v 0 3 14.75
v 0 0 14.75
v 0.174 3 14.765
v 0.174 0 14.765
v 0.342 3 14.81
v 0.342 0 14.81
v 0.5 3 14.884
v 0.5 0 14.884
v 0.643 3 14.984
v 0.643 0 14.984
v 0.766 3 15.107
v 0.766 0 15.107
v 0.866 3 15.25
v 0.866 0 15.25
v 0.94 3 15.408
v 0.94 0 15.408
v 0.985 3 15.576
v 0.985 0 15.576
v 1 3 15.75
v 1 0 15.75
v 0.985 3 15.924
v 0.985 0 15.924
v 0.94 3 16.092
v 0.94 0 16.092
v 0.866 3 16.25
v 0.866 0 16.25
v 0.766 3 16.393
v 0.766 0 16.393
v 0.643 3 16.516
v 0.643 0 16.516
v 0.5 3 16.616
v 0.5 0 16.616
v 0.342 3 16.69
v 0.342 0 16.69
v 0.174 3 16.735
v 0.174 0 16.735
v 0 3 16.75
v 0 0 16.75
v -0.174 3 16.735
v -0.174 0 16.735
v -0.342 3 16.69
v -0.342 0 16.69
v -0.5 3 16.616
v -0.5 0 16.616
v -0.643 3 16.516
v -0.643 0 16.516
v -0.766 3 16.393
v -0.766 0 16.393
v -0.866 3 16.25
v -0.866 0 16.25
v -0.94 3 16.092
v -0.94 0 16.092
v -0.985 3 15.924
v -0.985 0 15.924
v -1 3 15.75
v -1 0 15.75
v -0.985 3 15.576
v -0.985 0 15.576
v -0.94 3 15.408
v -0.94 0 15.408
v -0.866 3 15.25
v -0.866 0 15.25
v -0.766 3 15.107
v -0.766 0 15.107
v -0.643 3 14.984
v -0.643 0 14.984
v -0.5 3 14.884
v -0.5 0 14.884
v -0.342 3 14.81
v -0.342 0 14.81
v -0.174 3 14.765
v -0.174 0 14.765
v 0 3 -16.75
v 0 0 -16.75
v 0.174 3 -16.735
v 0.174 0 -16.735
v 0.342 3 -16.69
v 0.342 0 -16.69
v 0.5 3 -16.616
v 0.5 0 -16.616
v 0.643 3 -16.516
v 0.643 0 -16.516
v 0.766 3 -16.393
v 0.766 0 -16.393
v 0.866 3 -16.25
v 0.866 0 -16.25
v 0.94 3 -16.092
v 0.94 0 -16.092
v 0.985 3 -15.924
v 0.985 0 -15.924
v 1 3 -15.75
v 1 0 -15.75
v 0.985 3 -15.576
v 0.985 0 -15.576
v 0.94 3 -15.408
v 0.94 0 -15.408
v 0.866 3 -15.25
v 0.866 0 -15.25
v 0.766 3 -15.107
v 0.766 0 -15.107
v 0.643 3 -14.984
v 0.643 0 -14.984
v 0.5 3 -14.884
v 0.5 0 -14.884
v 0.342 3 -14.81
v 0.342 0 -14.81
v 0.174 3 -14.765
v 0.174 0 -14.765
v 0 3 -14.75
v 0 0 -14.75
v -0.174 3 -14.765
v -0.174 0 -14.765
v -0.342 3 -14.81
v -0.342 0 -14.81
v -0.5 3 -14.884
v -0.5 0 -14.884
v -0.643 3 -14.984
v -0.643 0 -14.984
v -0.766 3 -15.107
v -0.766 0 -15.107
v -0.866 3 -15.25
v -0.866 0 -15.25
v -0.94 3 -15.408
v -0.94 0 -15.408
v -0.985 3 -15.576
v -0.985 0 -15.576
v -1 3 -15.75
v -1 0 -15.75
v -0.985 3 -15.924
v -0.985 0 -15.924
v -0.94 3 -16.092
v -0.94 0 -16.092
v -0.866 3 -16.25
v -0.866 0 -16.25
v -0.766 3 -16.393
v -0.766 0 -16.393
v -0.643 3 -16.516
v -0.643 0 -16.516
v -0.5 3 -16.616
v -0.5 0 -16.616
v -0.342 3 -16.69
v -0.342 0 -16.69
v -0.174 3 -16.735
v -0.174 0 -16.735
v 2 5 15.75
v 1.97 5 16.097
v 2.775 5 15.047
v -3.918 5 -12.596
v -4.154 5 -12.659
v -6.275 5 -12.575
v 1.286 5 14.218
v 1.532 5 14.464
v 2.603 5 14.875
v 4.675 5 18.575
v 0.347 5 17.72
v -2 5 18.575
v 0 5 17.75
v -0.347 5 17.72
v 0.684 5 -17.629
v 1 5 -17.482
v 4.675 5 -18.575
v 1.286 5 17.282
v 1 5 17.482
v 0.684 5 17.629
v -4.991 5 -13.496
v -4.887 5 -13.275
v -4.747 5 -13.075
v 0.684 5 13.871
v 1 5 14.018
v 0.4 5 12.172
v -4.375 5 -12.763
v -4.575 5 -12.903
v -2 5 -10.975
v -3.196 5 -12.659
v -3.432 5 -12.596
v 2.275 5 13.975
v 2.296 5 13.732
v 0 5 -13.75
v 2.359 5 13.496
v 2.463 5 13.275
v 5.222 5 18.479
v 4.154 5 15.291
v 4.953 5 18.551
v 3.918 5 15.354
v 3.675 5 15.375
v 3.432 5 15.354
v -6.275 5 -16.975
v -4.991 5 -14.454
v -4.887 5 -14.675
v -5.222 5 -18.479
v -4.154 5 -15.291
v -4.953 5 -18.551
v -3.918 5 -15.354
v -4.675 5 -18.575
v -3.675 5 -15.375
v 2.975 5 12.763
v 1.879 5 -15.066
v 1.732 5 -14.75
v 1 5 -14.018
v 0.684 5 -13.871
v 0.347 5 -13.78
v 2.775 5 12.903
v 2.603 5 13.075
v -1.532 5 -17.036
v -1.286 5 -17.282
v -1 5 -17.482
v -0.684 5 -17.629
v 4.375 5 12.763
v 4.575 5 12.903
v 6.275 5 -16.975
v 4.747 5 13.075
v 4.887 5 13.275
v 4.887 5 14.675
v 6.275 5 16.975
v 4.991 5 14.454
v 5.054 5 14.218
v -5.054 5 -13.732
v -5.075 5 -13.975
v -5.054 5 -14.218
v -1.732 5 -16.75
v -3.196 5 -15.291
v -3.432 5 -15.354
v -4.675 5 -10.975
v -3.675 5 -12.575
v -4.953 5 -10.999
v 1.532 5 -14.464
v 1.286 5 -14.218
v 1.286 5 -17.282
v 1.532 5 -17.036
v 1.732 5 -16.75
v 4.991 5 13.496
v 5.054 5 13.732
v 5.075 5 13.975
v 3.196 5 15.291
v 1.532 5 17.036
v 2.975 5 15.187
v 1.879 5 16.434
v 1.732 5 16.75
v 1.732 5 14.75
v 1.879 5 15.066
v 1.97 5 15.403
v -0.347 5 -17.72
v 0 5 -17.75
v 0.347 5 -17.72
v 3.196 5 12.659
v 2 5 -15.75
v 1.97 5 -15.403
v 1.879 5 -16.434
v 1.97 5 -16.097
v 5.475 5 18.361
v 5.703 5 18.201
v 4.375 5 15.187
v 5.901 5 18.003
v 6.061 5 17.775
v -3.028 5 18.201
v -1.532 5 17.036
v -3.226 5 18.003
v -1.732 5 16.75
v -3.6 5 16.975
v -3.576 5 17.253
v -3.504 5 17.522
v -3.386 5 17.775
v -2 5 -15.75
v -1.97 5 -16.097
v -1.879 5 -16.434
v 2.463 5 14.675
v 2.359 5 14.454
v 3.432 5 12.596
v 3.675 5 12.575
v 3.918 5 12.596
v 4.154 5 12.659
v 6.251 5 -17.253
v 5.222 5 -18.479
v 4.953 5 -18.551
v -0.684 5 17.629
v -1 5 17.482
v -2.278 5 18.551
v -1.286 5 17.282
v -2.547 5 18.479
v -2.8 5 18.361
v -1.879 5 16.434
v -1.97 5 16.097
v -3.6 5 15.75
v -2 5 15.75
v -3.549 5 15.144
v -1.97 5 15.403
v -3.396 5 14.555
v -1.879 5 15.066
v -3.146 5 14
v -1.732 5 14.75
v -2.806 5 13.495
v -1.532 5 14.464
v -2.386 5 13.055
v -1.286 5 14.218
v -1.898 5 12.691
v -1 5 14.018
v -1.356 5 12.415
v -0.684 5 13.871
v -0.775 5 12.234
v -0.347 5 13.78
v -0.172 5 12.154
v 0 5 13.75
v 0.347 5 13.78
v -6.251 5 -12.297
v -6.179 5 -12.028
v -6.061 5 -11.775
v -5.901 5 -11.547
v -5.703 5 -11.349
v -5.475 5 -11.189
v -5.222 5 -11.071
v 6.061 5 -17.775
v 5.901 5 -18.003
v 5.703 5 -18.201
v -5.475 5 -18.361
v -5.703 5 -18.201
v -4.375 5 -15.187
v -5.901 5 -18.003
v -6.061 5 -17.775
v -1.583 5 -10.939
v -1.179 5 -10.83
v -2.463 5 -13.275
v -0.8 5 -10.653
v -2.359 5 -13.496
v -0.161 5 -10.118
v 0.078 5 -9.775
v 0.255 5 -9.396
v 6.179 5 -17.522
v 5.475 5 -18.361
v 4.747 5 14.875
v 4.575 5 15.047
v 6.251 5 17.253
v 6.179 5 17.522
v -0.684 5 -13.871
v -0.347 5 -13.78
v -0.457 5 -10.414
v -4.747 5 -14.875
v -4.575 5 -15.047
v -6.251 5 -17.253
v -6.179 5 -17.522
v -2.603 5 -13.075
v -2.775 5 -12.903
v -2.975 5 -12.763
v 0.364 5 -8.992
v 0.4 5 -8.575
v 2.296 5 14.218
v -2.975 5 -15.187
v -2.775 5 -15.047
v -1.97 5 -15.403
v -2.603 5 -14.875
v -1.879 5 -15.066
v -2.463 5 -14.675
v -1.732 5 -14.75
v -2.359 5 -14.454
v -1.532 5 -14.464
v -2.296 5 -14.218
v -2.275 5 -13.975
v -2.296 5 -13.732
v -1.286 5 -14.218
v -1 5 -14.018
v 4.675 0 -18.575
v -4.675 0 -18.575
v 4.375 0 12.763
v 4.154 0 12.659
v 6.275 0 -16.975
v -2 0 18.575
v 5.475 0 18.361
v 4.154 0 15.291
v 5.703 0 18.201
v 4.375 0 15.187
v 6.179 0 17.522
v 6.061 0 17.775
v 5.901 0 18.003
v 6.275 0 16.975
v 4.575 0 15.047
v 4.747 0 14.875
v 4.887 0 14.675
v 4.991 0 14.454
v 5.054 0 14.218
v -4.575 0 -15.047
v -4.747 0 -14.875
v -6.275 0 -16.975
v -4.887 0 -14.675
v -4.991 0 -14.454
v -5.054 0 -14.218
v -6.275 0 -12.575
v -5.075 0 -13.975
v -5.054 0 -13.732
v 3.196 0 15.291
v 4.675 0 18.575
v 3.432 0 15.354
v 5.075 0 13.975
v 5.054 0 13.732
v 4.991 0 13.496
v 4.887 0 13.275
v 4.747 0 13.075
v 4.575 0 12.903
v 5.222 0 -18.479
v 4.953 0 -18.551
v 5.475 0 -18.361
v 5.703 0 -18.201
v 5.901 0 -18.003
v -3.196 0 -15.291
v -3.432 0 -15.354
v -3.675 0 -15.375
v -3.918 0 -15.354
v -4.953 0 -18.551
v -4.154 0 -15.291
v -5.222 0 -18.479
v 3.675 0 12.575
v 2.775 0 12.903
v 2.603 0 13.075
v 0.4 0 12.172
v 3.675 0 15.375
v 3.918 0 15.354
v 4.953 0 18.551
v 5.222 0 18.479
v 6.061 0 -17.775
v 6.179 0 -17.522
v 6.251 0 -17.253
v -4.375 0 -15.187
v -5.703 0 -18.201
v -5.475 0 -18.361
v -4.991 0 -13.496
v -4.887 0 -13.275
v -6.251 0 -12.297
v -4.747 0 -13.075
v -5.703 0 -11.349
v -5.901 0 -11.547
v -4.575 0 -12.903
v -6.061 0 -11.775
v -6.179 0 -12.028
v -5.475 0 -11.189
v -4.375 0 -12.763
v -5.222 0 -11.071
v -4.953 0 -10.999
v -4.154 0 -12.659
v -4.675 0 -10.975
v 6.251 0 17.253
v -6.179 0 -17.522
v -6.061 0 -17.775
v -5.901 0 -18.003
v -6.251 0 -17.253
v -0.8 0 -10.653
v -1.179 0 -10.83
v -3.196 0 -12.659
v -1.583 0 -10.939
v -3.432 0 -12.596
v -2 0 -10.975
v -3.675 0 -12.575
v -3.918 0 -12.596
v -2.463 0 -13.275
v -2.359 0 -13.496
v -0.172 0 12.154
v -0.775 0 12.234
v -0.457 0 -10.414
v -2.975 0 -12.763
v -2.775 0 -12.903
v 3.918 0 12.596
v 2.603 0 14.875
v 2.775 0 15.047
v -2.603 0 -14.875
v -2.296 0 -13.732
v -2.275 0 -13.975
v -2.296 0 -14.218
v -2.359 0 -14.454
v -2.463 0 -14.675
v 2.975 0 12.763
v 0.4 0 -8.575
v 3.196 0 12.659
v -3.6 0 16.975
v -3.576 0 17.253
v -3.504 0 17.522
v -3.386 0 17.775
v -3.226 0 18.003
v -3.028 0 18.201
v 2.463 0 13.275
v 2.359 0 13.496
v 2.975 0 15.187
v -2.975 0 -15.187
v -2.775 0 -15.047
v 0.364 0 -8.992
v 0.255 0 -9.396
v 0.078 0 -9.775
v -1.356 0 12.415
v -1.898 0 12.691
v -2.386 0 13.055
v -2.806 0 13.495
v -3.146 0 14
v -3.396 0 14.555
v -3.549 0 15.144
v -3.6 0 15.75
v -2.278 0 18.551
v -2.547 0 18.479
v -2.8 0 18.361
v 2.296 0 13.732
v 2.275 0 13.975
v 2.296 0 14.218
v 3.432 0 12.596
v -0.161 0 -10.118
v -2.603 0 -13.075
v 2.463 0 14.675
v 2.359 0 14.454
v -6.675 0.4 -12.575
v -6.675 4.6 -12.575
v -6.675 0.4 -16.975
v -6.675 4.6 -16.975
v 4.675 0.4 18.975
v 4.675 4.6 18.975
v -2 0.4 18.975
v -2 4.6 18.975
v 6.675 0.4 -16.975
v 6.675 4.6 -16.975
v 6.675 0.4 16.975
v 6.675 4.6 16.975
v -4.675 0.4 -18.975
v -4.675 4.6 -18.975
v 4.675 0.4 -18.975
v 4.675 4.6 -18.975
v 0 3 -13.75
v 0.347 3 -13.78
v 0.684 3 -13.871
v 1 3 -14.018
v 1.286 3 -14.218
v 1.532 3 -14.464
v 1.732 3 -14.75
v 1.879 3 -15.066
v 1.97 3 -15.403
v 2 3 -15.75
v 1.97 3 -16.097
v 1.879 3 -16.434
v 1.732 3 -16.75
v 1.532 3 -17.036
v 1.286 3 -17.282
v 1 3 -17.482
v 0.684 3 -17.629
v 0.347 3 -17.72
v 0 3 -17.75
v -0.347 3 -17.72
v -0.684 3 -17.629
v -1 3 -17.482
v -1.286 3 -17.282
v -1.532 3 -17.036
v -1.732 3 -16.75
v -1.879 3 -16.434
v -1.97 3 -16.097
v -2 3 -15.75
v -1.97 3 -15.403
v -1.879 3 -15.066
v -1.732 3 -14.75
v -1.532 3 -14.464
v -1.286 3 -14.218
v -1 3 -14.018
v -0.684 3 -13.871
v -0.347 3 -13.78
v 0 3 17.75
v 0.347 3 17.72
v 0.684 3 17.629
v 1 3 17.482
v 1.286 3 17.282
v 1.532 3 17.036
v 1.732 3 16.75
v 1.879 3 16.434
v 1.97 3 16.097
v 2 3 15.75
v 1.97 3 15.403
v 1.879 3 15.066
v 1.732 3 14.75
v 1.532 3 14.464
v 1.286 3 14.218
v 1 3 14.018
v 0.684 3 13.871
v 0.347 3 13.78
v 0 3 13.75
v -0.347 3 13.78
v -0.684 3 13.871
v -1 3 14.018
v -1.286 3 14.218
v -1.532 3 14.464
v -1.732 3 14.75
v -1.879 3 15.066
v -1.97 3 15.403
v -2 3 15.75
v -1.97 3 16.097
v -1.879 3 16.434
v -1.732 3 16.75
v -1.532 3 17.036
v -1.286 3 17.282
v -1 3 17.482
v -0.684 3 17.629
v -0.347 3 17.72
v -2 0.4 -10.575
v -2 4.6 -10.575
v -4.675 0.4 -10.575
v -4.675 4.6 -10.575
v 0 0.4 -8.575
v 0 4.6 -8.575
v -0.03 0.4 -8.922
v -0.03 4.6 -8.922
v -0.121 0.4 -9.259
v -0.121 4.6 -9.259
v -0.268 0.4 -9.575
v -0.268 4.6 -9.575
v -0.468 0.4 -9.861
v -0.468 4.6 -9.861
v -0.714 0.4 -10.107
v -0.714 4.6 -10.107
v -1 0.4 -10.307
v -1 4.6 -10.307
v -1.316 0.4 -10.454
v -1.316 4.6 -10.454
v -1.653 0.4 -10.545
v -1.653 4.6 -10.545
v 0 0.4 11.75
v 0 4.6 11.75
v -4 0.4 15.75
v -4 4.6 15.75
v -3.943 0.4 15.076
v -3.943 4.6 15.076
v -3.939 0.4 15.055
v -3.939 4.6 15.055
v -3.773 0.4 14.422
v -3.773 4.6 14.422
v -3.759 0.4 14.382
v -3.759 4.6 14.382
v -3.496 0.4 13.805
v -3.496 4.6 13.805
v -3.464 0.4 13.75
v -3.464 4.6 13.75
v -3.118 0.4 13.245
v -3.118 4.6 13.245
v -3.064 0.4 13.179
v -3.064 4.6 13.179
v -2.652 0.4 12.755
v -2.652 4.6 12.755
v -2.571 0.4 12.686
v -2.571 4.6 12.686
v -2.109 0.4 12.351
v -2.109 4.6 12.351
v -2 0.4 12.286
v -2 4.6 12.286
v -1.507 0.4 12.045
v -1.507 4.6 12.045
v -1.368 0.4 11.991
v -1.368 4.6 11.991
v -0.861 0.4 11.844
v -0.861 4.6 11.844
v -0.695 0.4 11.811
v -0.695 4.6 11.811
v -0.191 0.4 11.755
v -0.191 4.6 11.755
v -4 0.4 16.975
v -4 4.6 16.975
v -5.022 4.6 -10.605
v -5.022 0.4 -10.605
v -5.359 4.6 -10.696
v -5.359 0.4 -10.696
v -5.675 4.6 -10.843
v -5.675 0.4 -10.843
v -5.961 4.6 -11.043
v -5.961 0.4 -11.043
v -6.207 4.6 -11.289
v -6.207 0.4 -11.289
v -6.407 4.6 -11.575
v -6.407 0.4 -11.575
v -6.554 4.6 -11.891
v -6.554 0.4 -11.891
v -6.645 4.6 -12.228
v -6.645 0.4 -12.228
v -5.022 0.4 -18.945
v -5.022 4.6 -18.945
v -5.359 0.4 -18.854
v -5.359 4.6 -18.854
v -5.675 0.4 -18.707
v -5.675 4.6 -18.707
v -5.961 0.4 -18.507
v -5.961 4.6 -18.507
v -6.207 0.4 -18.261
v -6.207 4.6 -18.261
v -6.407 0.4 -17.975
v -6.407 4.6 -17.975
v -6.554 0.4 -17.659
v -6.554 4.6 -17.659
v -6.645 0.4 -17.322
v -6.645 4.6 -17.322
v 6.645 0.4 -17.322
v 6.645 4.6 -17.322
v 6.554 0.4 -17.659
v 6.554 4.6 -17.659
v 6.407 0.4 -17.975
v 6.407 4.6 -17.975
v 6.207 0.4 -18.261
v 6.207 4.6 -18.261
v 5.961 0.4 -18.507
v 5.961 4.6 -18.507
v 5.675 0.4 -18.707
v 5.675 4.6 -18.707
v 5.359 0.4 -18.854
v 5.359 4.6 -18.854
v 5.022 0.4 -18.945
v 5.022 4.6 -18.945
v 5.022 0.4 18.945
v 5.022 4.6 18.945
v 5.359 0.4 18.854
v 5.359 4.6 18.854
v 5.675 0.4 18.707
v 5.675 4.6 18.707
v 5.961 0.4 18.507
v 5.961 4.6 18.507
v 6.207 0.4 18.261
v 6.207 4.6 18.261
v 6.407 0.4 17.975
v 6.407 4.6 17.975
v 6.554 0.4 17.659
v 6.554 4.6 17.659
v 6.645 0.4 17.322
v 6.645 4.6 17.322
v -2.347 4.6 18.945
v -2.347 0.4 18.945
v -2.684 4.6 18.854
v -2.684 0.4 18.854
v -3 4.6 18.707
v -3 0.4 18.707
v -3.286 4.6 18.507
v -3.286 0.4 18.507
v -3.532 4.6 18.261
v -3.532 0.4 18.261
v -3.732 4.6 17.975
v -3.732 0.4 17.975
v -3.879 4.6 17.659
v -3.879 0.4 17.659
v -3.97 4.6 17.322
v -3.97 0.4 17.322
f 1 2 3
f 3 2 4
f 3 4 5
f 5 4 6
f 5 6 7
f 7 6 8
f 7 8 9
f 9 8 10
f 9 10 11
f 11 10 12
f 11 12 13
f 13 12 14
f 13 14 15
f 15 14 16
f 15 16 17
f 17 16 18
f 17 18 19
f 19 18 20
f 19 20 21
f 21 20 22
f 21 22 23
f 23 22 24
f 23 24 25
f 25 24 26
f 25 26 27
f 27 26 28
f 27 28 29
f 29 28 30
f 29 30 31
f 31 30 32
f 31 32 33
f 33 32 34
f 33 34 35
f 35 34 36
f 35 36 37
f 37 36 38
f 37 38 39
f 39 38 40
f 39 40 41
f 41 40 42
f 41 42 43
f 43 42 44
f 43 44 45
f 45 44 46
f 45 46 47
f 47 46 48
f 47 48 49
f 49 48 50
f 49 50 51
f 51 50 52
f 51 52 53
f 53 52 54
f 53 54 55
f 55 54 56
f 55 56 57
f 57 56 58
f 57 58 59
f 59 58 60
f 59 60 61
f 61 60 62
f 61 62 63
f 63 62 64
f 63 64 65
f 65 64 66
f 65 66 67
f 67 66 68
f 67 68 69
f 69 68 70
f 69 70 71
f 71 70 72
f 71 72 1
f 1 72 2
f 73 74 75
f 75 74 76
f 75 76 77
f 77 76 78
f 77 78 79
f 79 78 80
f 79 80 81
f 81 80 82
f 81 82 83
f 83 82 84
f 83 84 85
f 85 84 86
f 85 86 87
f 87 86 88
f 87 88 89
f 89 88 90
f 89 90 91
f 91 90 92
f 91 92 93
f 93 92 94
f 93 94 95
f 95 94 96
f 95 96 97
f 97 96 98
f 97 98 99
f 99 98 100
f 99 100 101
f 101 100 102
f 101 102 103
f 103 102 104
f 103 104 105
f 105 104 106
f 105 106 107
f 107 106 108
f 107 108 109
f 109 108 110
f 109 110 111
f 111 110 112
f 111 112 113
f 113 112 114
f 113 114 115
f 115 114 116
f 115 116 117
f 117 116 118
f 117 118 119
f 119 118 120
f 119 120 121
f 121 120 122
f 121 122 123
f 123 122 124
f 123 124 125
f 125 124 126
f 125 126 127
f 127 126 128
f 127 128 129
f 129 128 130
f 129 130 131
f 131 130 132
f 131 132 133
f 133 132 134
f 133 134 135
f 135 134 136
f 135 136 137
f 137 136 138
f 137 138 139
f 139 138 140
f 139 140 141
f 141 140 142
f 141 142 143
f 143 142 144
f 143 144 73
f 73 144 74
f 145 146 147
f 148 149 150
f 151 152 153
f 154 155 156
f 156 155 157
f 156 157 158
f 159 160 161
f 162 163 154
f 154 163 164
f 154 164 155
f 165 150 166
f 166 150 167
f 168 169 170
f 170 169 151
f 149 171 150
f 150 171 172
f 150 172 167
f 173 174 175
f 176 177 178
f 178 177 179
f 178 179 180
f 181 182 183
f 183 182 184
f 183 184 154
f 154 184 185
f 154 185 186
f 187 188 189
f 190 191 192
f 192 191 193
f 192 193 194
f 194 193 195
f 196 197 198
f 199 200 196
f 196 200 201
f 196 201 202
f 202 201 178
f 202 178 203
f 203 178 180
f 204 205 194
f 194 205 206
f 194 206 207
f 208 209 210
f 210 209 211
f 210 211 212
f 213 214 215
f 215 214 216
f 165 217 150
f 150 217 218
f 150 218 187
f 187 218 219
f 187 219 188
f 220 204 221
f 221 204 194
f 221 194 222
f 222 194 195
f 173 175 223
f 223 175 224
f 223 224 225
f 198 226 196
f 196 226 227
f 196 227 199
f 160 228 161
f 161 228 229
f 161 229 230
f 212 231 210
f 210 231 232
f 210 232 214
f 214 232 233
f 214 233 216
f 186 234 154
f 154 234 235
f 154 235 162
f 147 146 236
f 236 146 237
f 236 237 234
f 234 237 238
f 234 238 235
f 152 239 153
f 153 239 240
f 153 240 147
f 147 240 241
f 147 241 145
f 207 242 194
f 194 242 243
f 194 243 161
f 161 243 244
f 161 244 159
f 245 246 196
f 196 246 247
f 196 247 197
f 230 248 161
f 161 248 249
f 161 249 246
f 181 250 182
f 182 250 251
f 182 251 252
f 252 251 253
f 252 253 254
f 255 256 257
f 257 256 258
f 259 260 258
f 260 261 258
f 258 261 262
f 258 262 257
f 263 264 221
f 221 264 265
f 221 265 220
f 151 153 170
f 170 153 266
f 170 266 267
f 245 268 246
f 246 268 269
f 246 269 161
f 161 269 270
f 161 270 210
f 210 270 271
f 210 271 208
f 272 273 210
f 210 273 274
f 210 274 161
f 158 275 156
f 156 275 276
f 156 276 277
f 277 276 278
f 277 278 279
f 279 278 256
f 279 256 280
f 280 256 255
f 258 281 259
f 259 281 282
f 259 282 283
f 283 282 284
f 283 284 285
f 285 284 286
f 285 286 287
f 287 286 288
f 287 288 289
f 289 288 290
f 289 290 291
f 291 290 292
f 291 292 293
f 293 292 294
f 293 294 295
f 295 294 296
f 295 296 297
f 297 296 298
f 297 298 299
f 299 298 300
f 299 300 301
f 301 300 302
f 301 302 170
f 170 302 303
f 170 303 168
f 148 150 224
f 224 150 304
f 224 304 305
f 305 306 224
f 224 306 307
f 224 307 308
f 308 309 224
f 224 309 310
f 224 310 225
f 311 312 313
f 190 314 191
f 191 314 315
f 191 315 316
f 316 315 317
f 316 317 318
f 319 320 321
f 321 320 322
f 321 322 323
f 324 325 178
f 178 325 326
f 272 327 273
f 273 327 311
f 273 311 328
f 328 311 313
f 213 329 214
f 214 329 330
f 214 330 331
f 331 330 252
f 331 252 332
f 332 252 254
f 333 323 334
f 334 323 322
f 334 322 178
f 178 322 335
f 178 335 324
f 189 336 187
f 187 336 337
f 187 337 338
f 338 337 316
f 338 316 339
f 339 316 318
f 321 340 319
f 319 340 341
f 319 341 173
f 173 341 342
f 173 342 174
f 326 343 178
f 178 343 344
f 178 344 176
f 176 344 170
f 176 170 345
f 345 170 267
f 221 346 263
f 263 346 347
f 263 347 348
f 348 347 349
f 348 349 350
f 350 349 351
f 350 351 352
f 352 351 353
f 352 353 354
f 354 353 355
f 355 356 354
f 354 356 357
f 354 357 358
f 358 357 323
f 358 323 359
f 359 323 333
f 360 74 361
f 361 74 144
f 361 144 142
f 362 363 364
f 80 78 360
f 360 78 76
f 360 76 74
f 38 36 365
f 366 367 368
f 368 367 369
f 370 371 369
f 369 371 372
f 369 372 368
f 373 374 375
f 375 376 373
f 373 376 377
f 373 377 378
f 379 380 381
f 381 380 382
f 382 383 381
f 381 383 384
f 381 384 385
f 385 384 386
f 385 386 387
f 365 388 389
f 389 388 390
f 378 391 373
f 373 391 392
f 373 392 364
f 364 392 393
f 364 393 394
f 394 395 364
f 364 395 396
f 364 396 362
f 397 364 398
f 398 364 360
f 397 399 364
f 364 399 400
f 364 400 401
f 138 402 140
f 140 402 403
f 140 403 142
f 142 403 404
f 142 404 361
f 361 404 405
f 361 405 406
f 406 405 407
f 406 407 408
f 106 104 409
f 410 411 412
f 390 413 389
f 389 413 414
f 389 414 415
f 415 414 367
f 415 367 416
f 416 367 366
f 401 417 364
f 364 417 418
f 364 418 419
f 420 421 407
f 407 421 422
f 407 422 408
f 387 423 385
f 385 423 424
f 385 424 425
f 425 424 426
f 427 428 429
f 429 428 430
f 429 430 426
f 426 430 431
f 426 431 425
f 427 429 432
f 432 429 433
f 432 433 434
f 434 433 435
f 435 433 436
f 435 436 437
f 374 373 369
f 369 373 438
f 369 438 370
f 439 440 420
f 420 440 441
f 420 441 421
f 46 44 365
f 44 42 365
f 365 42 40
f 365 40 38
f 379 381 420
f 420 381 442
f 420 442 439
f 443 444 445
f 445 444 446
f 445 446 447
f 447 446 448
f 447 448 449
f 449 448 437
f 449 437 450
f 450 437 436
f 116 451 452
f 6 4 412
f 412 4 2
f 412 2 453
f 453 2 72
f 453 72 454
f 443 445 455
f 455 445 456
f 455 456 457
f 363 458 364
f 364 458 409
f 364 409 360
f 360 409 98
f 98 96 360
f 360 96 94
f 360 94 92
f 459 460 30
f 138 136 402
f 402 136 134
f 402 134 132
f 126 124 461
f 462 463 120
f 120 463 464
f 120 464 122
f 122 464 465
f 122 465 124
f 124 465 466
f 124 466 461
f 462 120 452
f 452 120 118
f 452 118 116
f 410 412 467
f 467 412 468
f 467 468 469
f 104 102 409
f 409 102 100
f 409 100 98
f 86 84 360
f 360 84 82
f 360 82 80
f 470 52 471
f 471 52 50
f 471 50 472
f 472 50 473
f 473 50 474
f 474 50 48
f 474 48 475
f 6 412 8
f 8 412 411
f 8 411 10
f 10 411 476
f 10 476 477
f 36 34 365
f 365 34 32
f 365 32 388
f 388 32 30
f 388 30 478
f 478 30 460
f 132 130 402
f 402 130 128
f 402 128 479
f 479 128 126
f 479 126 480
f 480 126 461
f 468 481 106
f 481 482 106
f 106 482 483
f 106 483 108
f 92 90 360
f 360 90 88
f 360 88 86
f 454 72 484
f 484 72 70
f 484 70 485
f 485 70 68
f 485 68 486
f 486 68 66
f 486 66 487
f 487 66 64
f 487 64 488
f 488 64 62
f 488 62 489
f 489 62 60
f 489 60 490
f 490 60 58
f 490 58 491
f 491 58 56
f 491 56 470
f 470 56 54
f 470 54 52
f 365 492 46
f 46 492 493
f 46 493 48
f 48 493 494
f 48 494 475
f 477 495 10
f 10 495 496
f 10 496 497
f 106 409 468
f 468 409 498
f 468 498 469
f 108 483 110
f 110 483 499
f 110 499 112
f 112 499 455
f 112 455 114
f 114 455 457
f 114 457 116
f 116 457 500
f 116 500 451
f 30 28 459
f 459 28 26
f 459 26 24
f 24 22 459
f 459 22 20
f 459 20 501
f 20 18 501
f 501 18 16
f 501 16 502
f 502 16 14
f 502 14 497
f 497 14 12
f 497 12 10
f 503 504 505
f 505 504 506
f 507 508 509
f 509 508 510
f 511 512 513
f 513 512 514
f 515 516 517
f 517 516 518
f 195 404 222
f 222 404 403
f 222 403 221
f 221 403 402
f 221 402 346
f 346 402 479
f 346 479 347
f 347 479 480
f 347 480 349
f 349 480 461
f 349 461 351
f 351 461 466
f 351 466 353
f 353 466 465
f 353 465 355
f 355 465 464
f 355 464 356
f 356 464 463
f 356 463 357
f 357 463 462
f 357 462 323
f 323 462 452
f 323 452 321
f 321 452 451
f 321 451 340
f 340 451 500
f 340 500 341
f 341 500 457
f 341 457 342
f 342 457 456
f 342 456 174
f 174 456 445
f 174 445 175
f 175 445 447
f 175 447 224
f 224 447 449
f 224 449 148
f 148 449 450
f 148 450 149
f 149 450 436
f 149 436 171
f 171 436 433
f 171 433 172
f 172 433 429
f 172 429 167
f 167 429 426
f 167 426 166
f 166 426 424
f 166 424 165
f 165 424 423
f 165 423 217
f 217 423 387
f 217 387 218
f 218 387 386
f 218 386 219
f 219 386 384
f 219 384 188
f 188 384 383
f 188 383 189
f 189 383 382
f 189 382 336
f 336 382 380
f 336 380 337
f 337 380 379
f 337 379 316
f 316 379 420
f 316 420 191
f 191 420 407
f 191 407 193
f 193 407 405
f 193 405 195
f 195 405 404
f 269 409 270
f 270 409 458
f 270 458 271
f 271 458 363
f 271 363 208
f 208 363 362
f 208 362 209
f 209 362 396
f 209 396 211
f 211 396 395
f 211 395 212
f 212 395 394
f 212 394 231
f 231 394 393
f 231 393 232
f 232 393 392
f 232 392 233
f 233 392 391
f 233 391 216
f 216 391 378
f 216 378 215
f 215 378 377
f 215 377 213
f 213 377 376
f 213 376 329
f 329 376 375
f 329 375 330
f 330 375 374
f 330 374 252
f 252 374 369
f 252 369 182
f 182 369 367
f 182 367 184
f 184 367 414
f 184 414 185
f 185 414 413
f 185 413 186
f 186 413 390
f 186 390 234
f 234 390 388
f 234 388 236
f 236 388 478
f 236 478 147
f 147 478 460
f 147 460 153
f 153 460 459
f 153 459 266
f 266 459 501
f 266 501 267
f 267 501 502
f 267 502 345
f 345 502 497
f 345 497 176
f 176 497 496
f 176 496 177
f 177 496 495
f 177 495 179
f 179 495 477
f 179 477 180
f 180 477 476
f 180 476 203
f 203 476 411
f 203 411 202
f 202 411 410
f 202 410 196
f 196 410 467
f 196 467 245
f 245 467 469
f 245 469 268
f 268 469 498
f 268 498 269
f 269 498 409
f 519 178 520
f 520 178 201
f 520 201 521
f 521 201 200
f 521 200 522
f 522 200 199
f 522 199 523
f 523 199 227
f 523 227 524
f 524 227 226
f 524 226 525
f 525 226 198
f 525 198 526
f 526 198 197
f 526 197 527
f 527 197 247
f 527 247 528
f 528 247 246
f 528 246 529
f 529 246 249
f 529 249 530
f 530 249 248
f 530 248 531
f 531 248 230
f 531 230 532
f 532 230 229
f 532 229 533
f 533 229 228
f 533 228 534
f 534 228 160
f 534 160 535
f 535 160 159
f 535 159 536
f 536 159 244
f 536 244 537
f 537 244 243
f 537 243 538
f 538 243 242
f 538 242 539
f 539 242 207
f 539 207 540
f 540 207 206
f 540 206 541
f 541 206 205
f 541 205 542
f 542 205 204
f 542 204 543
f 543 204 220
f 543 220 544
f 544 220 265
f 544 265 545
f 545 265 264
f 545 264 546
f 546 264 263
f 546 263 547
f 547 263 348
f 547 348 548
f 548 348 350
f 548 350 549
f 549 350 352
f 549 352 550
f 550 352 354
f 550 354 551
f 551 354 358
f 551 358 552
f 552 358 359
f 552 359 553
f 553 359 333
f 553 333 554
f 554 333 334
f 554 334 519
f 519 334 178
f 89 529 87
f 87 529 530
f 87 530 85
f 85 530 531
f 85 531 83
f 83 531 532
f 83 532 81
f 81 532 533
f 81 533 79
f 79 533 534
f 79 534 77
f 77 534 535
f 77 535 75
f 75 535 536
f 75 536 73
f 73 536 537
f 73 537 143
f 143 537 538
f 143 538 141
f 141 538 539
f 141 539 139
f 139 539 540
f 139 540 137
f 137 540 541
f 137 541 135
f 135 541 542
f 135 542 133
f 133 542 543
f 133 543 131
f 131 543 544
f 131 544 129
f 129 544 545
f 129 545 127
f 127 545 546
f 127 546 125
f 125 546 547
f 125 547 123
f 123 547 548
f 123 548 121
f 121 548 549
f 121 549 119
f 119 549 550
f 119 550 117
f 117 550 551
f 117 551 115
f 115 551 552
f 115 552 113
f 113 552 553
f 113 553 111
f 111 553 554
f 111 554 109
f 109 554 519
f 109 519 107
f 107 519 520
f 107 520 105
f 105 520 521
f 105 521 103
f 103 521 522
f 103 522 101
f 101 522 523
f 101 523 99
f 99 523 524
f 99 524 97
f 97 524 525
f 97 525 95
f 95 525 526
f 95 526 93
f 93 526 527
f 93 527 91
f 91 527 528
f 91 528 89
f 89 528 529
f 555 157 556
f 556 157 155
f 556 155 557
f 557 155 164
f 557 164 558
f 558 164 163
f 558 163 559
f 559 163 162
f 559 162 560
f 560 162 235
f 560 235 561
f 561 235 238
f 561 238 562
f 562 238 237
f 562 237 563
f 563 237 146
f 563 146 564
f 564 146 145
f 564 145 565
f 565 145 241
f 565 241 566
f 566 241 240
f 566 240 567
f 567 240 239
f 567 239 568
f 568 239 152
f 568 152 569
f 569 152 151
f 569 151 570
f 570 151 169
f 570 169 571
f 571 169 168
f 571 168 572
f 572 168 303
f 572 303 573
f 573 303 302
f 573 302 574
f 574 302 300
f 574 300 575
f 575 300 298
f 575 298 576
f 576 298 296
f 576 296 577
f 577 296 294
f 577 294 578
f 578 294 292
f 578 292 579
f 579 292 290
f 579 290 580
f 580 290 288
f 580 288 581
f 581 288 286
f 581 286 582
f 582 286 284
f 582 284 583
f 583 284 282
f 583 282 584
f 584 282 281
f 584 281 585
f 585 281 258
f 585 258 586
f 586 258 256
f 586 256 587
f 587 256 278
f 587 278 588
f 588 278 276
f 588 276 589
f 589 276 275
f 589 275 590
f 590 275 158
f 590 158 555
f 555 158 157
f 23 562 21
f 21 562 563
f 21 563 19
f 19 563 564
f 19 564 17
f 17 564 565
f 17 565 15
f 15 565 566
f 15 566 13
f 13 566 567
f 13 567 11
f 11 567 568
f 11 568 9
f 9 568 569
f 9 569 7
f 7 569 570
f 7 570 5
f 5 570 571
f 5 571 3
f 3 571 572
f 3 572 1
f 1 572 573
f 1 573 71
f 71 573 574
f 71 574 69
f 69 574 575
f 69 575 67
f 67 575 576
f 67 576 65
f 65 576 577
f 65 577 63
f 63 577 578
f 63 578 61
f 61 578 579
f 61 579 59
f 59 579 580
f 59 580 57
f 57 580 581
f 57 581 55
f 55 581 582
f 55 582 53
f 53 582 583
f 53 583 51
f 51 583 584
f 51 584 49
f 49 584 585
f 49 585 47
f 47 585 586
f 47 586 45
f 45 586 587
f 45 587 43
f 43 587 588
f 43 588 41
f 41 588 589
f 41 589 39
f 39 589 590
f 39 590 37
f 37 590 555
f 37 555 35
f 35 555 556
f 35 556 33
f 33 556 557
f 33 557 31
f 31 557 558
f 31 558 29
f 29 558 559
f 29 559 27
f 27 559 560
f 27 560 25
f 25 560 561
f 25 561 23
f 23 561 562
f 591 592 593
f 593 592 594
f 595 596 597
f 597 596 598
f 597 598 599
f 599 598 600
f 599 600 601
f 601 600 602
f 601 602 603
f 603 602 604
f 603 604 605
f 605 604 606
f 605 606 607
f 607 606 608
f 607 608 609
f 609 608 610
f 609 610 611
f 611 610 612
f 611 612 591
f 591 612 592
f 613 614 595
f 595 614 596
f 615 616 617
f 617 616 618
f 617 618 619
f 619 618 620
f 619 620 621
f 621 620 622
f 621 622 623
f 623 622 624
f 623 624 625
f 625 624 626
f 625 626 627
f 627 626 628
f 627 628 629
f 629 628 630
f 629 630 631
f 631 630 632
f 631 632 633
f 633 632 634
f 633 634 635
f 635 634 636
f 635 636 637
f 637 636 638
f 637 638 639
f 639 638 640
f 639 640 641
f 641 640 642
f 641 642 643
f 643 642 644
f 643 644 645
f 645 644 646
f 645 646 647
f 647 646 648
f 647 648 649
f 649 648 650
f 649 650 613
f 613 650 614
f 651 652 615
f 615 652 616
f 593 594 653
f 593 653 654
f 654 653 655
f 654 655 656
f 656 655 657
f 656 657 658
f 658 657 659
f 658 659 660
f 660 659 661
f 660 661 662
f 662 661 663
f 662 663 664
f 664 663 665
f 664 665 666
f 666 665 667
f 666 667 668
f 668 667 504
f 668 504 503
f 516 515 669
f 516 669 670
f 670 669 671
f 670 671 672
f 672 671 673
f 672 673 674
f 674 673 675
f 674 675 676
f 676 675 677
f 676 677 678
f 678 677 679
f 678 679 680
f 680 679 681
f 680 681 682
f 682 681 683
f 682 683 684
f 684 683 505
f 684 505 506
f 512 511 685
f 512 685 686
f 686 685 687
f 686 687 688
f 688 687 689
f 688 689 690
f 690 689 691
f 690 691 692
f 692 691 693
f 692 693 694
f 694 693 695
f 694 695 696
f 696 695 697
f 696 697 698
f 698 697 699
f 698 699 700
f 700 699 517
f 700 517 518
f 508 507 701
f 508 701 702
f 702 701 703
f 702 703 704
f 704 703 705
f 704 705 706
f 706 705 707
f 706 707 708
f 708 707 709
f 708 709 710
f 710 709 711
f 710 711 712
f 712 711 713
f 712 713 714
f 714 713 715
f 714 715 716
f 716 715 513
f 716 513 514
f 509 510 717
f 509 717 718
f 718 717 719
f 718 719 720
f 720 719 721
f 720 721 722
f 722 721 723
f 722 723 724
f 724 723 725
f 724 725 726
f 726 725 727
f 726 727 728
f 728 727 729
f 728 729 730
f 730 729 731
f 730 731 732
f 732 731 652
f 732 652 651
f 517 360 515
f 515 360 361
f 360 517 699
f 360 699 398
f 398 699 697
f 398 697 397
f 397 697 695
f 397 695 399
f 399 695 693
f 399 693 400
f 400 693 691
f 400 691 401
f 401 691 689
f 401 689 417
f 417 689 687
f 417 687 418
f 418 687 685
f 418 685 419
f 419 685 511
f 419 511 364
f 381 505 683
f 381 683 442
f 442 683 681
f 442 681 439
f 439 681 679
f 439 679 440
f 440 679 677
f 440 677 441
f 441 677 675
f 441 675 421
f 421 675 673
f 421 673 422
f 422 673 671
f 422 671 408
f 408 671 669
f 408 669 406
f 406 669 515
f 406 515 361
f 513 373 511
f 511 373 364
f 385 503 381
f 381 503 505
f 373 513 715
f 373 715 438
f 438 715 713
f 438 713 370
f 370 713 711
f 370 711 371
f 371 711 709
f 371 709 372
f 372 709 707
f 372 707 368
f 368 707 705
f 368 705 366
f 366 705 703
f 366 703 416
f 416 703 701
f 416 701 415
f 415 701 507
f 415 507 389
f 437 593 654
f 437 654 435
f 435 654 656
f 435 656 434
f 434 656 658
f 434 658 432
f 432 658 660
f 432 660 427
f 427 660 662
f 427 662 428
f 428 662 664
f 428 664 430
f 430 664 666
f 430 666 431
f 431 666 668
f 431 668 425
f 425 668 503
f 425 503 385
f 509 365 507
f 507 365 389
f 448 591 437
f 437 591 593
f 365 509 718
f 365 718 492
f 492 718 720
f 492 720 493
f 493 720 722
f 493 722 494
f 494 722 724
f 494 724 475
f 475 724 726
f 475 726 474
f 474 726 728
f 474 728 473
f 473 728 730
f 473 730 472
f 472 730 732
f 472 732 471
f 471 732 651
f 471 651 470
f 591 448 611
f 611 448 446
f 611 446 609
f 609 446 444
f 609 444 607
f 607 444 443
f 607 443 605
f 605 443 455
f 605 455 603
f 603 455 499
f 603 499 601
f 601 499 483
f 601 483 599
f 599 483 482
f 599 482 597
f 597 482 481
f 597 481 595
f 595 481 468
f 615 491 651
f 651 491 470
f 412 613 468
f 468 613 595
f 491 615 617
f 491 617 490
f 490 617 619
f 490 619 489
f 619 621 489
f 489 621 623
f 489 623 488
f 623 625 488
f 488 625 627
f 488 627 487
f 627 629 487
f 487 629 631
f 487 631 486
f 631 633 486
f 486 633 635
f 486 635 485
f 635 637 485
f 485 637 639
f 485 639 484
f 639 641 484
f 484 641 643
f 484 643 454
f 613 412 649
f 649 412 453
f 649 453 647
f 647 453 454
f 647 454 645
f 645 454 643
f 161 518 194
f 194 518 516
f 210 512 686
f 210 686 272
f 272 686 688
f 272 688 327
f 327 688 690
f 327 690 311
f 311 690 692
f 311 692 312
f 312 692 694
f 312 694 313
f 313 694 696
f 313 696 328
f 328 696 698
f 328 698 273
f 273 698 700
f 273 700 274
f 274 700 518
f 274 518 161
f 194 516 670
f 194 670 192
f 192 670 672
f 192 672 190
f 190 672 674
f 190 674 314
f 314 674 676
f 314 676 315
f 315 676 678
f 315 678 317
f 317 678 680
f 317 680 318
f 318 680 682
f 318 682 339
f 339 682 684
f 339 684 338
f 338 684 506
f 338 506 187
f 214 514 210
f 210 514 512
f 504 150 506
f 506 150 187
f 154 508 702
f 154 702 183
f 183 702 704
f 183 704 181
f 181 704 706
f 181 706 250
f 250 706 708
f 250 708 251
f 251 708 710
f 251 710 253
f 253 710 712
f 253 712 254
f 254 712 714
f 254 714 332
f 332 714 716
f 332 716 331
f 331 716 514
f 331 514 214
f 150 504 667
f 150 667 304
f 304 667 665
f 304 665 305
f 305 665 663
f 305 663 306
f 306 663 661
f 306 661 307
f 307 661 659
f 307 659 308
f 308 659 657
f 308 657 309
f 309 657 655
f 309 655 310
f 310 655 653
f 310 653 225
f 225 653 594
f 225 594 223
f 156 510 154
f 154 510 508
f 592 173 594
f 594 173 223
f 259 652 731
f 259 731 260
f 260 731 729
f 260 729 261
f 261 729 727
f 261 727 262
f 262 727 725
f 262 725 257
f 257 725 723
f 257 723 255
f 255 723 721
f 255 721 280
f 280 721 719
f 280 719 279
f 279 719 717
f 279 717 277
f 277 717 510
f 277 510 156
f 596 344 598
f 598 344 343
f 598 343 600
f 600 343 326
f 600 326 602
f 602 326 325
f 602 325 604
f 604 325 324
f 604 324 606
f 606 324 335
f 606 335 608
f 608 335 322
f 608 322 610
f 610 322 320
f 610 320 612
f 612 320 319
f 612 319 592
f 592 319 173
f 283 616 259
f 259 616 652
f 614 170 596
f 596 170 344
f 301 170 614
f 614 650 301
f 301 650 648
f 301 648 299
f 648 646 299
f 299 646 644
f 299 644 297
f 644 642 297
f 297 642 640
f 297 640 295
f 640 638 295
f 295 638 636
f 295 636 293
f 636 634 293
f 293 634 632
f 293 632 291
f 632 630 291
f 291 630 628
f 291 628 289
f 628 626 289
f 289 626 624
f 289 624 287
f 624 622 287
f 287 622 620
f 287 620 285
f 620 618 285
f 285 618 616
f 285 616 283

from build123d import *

# Parameters (mm, degrees)
SKETCH2_W           = 13.35
SKETCH2_H           = 37.95
SKETCH2_R           = 1.4
SKETCH2_R_2         = 1
BOSS_EXTRUDE1_DEPTH = 5
SKETCH3_R           = 2
CUT_EXTRUDE1_DEPTH  = 2
CUT_EXTRUDE2_DEPTH  = 6
FILLET1_R           = 2
CHAMFER1_SIZE       = 0.4


with BuildPart() as part:
    # Sketch2 → Boss-Extrude1 (new body)
    with BuildSketch(Plane(origin=(0, 0, 0), x_dir=(1, 0, 0), z_dir=(0, 1, 0))):
        Rectangle(SKETCH2_W, SKETCH2_H)
        with Locations((-3.675, 13.975)):
            Circle(SKETCH2_R, mode=Mode.SUBTRACT)
        with Locations((3.675, -13.975)):
            Circle(SKETCH2_R, mode=Mode.SUBTRACT)
        with Locations((0, 15.75)):
            Circle(SKETCH2_R_2, mode=Mode.SUBTRACT)
        with Locations((0, -15.75)):
            Circle(SKETCH2_R_2, mode=Mode.SUBTRACT)
    extrude(amount=BOSS_EXTRUDE1_DEPTH)

    # Sketch3 → Cut-Extrude1 (cut)
    with BuildSketch(Plane(origin=(0, 5, 0), x_dir=(1, 0, 0), z_dir=(0, 1, 0))):
        with Locations((0, 15.75)):
            Circle(SKETCH3_R)
        with Locations((0, -15.75)):
            Circle(SKETCH3_R)
    extrude(amount=-CUT_EXTRUDE1_DEPTH, mode=Mode.SUBTRACT)

    # Sketch4 → Cut-Extrude2 (cut, through all)
    with BuildSketch(Plane(origin=(0, 5, 0), x_dir=(1, 0, 0), z_dir=(0, 1, 0))):
        with BuildLine():
            Line((-6.675, 10.575), (-2, 10.575))
            ThreePointArc((-2, 10.575), (-0.585786438, 9.989213562), (0, 8.575))
            Line((0, 8.575), (0, -11.75))
            ThreePointArc((0, -11.75), (-2.828427125, -12.921572875), (-4, -15.75))
            Line((-4, -15.75), (-4, -18.975))
            Line((-4, -18.975), (-6.675, -18.975))
            Line((-6.675, -18.975), (-6.675, 10.575))
        make_face()
    extrude(amount=-CUT_EXTRUDE2_DEPTH, mode=Mode.SUBTRACT)

    # Fillet1
    fillet1_edges = [part.edges().sort_by_distance(p)[0] for p in [
        (-6.675, 2.5, -10.575),
        (-4, 2.5, 18.975),
        (-6.675, 2.5, -18.975),
        (6.675, 2.5, -18.975),
        (6.675, 2.5, 18.975),
    ]]
    fillet(fillet1_edges, radius=FILLET1_R)

    # Chamfer1
    chamfer1_edges = [part.edges().sort_by_distance(p)[0] for p in [
        (-3.3375, 0, -10.575),
        (-0.585786438, 0, -9.989213562),
        (0, 0, 1.5875),
        (-2.828427125, 0, 12.921572875),
        (-2.828427125, 5, 12.921572875),
        (0, 5, 1.5875),
        (-0.585786438, 5, -9.989213562),
        (-3.3375, 5, -10.575),
        (-6.675, 0, -14.775),
        (-6.675, 5, -14.775),
        (-4, 5, 16.3625),
        (1.3375, 5, 18.975),
        (6.675, 5, 0),
        (0, 5, -18.975),
        (-3.414213562, 5, 18.389213562),
        (6.089213562, 5, 18.389213562),
        (6.089213562, 5, -18.389213562),
        (-6.089213562, 5, -18.389213562),
        (-6.089213562, 5, -11.160786438),
        (0, 0, -18.975),
        (6.675, 0, 0),
        (1.3375, 0, 18.975),
        (-4, 0, 16.3625),
        (-3.414213562, 0, 18.389213562),
        (6.089213562, 0, 18.389213562),
        (6.089213562, 0, -18.389213562),
        (-6.089213562, 0, -18.389213562),
        (-6.089213562, 0, -11.160786438),
    ]]
    chamfer(chamfer1_edges, length=CHAMFER1_SIZE)


solid = part.part
